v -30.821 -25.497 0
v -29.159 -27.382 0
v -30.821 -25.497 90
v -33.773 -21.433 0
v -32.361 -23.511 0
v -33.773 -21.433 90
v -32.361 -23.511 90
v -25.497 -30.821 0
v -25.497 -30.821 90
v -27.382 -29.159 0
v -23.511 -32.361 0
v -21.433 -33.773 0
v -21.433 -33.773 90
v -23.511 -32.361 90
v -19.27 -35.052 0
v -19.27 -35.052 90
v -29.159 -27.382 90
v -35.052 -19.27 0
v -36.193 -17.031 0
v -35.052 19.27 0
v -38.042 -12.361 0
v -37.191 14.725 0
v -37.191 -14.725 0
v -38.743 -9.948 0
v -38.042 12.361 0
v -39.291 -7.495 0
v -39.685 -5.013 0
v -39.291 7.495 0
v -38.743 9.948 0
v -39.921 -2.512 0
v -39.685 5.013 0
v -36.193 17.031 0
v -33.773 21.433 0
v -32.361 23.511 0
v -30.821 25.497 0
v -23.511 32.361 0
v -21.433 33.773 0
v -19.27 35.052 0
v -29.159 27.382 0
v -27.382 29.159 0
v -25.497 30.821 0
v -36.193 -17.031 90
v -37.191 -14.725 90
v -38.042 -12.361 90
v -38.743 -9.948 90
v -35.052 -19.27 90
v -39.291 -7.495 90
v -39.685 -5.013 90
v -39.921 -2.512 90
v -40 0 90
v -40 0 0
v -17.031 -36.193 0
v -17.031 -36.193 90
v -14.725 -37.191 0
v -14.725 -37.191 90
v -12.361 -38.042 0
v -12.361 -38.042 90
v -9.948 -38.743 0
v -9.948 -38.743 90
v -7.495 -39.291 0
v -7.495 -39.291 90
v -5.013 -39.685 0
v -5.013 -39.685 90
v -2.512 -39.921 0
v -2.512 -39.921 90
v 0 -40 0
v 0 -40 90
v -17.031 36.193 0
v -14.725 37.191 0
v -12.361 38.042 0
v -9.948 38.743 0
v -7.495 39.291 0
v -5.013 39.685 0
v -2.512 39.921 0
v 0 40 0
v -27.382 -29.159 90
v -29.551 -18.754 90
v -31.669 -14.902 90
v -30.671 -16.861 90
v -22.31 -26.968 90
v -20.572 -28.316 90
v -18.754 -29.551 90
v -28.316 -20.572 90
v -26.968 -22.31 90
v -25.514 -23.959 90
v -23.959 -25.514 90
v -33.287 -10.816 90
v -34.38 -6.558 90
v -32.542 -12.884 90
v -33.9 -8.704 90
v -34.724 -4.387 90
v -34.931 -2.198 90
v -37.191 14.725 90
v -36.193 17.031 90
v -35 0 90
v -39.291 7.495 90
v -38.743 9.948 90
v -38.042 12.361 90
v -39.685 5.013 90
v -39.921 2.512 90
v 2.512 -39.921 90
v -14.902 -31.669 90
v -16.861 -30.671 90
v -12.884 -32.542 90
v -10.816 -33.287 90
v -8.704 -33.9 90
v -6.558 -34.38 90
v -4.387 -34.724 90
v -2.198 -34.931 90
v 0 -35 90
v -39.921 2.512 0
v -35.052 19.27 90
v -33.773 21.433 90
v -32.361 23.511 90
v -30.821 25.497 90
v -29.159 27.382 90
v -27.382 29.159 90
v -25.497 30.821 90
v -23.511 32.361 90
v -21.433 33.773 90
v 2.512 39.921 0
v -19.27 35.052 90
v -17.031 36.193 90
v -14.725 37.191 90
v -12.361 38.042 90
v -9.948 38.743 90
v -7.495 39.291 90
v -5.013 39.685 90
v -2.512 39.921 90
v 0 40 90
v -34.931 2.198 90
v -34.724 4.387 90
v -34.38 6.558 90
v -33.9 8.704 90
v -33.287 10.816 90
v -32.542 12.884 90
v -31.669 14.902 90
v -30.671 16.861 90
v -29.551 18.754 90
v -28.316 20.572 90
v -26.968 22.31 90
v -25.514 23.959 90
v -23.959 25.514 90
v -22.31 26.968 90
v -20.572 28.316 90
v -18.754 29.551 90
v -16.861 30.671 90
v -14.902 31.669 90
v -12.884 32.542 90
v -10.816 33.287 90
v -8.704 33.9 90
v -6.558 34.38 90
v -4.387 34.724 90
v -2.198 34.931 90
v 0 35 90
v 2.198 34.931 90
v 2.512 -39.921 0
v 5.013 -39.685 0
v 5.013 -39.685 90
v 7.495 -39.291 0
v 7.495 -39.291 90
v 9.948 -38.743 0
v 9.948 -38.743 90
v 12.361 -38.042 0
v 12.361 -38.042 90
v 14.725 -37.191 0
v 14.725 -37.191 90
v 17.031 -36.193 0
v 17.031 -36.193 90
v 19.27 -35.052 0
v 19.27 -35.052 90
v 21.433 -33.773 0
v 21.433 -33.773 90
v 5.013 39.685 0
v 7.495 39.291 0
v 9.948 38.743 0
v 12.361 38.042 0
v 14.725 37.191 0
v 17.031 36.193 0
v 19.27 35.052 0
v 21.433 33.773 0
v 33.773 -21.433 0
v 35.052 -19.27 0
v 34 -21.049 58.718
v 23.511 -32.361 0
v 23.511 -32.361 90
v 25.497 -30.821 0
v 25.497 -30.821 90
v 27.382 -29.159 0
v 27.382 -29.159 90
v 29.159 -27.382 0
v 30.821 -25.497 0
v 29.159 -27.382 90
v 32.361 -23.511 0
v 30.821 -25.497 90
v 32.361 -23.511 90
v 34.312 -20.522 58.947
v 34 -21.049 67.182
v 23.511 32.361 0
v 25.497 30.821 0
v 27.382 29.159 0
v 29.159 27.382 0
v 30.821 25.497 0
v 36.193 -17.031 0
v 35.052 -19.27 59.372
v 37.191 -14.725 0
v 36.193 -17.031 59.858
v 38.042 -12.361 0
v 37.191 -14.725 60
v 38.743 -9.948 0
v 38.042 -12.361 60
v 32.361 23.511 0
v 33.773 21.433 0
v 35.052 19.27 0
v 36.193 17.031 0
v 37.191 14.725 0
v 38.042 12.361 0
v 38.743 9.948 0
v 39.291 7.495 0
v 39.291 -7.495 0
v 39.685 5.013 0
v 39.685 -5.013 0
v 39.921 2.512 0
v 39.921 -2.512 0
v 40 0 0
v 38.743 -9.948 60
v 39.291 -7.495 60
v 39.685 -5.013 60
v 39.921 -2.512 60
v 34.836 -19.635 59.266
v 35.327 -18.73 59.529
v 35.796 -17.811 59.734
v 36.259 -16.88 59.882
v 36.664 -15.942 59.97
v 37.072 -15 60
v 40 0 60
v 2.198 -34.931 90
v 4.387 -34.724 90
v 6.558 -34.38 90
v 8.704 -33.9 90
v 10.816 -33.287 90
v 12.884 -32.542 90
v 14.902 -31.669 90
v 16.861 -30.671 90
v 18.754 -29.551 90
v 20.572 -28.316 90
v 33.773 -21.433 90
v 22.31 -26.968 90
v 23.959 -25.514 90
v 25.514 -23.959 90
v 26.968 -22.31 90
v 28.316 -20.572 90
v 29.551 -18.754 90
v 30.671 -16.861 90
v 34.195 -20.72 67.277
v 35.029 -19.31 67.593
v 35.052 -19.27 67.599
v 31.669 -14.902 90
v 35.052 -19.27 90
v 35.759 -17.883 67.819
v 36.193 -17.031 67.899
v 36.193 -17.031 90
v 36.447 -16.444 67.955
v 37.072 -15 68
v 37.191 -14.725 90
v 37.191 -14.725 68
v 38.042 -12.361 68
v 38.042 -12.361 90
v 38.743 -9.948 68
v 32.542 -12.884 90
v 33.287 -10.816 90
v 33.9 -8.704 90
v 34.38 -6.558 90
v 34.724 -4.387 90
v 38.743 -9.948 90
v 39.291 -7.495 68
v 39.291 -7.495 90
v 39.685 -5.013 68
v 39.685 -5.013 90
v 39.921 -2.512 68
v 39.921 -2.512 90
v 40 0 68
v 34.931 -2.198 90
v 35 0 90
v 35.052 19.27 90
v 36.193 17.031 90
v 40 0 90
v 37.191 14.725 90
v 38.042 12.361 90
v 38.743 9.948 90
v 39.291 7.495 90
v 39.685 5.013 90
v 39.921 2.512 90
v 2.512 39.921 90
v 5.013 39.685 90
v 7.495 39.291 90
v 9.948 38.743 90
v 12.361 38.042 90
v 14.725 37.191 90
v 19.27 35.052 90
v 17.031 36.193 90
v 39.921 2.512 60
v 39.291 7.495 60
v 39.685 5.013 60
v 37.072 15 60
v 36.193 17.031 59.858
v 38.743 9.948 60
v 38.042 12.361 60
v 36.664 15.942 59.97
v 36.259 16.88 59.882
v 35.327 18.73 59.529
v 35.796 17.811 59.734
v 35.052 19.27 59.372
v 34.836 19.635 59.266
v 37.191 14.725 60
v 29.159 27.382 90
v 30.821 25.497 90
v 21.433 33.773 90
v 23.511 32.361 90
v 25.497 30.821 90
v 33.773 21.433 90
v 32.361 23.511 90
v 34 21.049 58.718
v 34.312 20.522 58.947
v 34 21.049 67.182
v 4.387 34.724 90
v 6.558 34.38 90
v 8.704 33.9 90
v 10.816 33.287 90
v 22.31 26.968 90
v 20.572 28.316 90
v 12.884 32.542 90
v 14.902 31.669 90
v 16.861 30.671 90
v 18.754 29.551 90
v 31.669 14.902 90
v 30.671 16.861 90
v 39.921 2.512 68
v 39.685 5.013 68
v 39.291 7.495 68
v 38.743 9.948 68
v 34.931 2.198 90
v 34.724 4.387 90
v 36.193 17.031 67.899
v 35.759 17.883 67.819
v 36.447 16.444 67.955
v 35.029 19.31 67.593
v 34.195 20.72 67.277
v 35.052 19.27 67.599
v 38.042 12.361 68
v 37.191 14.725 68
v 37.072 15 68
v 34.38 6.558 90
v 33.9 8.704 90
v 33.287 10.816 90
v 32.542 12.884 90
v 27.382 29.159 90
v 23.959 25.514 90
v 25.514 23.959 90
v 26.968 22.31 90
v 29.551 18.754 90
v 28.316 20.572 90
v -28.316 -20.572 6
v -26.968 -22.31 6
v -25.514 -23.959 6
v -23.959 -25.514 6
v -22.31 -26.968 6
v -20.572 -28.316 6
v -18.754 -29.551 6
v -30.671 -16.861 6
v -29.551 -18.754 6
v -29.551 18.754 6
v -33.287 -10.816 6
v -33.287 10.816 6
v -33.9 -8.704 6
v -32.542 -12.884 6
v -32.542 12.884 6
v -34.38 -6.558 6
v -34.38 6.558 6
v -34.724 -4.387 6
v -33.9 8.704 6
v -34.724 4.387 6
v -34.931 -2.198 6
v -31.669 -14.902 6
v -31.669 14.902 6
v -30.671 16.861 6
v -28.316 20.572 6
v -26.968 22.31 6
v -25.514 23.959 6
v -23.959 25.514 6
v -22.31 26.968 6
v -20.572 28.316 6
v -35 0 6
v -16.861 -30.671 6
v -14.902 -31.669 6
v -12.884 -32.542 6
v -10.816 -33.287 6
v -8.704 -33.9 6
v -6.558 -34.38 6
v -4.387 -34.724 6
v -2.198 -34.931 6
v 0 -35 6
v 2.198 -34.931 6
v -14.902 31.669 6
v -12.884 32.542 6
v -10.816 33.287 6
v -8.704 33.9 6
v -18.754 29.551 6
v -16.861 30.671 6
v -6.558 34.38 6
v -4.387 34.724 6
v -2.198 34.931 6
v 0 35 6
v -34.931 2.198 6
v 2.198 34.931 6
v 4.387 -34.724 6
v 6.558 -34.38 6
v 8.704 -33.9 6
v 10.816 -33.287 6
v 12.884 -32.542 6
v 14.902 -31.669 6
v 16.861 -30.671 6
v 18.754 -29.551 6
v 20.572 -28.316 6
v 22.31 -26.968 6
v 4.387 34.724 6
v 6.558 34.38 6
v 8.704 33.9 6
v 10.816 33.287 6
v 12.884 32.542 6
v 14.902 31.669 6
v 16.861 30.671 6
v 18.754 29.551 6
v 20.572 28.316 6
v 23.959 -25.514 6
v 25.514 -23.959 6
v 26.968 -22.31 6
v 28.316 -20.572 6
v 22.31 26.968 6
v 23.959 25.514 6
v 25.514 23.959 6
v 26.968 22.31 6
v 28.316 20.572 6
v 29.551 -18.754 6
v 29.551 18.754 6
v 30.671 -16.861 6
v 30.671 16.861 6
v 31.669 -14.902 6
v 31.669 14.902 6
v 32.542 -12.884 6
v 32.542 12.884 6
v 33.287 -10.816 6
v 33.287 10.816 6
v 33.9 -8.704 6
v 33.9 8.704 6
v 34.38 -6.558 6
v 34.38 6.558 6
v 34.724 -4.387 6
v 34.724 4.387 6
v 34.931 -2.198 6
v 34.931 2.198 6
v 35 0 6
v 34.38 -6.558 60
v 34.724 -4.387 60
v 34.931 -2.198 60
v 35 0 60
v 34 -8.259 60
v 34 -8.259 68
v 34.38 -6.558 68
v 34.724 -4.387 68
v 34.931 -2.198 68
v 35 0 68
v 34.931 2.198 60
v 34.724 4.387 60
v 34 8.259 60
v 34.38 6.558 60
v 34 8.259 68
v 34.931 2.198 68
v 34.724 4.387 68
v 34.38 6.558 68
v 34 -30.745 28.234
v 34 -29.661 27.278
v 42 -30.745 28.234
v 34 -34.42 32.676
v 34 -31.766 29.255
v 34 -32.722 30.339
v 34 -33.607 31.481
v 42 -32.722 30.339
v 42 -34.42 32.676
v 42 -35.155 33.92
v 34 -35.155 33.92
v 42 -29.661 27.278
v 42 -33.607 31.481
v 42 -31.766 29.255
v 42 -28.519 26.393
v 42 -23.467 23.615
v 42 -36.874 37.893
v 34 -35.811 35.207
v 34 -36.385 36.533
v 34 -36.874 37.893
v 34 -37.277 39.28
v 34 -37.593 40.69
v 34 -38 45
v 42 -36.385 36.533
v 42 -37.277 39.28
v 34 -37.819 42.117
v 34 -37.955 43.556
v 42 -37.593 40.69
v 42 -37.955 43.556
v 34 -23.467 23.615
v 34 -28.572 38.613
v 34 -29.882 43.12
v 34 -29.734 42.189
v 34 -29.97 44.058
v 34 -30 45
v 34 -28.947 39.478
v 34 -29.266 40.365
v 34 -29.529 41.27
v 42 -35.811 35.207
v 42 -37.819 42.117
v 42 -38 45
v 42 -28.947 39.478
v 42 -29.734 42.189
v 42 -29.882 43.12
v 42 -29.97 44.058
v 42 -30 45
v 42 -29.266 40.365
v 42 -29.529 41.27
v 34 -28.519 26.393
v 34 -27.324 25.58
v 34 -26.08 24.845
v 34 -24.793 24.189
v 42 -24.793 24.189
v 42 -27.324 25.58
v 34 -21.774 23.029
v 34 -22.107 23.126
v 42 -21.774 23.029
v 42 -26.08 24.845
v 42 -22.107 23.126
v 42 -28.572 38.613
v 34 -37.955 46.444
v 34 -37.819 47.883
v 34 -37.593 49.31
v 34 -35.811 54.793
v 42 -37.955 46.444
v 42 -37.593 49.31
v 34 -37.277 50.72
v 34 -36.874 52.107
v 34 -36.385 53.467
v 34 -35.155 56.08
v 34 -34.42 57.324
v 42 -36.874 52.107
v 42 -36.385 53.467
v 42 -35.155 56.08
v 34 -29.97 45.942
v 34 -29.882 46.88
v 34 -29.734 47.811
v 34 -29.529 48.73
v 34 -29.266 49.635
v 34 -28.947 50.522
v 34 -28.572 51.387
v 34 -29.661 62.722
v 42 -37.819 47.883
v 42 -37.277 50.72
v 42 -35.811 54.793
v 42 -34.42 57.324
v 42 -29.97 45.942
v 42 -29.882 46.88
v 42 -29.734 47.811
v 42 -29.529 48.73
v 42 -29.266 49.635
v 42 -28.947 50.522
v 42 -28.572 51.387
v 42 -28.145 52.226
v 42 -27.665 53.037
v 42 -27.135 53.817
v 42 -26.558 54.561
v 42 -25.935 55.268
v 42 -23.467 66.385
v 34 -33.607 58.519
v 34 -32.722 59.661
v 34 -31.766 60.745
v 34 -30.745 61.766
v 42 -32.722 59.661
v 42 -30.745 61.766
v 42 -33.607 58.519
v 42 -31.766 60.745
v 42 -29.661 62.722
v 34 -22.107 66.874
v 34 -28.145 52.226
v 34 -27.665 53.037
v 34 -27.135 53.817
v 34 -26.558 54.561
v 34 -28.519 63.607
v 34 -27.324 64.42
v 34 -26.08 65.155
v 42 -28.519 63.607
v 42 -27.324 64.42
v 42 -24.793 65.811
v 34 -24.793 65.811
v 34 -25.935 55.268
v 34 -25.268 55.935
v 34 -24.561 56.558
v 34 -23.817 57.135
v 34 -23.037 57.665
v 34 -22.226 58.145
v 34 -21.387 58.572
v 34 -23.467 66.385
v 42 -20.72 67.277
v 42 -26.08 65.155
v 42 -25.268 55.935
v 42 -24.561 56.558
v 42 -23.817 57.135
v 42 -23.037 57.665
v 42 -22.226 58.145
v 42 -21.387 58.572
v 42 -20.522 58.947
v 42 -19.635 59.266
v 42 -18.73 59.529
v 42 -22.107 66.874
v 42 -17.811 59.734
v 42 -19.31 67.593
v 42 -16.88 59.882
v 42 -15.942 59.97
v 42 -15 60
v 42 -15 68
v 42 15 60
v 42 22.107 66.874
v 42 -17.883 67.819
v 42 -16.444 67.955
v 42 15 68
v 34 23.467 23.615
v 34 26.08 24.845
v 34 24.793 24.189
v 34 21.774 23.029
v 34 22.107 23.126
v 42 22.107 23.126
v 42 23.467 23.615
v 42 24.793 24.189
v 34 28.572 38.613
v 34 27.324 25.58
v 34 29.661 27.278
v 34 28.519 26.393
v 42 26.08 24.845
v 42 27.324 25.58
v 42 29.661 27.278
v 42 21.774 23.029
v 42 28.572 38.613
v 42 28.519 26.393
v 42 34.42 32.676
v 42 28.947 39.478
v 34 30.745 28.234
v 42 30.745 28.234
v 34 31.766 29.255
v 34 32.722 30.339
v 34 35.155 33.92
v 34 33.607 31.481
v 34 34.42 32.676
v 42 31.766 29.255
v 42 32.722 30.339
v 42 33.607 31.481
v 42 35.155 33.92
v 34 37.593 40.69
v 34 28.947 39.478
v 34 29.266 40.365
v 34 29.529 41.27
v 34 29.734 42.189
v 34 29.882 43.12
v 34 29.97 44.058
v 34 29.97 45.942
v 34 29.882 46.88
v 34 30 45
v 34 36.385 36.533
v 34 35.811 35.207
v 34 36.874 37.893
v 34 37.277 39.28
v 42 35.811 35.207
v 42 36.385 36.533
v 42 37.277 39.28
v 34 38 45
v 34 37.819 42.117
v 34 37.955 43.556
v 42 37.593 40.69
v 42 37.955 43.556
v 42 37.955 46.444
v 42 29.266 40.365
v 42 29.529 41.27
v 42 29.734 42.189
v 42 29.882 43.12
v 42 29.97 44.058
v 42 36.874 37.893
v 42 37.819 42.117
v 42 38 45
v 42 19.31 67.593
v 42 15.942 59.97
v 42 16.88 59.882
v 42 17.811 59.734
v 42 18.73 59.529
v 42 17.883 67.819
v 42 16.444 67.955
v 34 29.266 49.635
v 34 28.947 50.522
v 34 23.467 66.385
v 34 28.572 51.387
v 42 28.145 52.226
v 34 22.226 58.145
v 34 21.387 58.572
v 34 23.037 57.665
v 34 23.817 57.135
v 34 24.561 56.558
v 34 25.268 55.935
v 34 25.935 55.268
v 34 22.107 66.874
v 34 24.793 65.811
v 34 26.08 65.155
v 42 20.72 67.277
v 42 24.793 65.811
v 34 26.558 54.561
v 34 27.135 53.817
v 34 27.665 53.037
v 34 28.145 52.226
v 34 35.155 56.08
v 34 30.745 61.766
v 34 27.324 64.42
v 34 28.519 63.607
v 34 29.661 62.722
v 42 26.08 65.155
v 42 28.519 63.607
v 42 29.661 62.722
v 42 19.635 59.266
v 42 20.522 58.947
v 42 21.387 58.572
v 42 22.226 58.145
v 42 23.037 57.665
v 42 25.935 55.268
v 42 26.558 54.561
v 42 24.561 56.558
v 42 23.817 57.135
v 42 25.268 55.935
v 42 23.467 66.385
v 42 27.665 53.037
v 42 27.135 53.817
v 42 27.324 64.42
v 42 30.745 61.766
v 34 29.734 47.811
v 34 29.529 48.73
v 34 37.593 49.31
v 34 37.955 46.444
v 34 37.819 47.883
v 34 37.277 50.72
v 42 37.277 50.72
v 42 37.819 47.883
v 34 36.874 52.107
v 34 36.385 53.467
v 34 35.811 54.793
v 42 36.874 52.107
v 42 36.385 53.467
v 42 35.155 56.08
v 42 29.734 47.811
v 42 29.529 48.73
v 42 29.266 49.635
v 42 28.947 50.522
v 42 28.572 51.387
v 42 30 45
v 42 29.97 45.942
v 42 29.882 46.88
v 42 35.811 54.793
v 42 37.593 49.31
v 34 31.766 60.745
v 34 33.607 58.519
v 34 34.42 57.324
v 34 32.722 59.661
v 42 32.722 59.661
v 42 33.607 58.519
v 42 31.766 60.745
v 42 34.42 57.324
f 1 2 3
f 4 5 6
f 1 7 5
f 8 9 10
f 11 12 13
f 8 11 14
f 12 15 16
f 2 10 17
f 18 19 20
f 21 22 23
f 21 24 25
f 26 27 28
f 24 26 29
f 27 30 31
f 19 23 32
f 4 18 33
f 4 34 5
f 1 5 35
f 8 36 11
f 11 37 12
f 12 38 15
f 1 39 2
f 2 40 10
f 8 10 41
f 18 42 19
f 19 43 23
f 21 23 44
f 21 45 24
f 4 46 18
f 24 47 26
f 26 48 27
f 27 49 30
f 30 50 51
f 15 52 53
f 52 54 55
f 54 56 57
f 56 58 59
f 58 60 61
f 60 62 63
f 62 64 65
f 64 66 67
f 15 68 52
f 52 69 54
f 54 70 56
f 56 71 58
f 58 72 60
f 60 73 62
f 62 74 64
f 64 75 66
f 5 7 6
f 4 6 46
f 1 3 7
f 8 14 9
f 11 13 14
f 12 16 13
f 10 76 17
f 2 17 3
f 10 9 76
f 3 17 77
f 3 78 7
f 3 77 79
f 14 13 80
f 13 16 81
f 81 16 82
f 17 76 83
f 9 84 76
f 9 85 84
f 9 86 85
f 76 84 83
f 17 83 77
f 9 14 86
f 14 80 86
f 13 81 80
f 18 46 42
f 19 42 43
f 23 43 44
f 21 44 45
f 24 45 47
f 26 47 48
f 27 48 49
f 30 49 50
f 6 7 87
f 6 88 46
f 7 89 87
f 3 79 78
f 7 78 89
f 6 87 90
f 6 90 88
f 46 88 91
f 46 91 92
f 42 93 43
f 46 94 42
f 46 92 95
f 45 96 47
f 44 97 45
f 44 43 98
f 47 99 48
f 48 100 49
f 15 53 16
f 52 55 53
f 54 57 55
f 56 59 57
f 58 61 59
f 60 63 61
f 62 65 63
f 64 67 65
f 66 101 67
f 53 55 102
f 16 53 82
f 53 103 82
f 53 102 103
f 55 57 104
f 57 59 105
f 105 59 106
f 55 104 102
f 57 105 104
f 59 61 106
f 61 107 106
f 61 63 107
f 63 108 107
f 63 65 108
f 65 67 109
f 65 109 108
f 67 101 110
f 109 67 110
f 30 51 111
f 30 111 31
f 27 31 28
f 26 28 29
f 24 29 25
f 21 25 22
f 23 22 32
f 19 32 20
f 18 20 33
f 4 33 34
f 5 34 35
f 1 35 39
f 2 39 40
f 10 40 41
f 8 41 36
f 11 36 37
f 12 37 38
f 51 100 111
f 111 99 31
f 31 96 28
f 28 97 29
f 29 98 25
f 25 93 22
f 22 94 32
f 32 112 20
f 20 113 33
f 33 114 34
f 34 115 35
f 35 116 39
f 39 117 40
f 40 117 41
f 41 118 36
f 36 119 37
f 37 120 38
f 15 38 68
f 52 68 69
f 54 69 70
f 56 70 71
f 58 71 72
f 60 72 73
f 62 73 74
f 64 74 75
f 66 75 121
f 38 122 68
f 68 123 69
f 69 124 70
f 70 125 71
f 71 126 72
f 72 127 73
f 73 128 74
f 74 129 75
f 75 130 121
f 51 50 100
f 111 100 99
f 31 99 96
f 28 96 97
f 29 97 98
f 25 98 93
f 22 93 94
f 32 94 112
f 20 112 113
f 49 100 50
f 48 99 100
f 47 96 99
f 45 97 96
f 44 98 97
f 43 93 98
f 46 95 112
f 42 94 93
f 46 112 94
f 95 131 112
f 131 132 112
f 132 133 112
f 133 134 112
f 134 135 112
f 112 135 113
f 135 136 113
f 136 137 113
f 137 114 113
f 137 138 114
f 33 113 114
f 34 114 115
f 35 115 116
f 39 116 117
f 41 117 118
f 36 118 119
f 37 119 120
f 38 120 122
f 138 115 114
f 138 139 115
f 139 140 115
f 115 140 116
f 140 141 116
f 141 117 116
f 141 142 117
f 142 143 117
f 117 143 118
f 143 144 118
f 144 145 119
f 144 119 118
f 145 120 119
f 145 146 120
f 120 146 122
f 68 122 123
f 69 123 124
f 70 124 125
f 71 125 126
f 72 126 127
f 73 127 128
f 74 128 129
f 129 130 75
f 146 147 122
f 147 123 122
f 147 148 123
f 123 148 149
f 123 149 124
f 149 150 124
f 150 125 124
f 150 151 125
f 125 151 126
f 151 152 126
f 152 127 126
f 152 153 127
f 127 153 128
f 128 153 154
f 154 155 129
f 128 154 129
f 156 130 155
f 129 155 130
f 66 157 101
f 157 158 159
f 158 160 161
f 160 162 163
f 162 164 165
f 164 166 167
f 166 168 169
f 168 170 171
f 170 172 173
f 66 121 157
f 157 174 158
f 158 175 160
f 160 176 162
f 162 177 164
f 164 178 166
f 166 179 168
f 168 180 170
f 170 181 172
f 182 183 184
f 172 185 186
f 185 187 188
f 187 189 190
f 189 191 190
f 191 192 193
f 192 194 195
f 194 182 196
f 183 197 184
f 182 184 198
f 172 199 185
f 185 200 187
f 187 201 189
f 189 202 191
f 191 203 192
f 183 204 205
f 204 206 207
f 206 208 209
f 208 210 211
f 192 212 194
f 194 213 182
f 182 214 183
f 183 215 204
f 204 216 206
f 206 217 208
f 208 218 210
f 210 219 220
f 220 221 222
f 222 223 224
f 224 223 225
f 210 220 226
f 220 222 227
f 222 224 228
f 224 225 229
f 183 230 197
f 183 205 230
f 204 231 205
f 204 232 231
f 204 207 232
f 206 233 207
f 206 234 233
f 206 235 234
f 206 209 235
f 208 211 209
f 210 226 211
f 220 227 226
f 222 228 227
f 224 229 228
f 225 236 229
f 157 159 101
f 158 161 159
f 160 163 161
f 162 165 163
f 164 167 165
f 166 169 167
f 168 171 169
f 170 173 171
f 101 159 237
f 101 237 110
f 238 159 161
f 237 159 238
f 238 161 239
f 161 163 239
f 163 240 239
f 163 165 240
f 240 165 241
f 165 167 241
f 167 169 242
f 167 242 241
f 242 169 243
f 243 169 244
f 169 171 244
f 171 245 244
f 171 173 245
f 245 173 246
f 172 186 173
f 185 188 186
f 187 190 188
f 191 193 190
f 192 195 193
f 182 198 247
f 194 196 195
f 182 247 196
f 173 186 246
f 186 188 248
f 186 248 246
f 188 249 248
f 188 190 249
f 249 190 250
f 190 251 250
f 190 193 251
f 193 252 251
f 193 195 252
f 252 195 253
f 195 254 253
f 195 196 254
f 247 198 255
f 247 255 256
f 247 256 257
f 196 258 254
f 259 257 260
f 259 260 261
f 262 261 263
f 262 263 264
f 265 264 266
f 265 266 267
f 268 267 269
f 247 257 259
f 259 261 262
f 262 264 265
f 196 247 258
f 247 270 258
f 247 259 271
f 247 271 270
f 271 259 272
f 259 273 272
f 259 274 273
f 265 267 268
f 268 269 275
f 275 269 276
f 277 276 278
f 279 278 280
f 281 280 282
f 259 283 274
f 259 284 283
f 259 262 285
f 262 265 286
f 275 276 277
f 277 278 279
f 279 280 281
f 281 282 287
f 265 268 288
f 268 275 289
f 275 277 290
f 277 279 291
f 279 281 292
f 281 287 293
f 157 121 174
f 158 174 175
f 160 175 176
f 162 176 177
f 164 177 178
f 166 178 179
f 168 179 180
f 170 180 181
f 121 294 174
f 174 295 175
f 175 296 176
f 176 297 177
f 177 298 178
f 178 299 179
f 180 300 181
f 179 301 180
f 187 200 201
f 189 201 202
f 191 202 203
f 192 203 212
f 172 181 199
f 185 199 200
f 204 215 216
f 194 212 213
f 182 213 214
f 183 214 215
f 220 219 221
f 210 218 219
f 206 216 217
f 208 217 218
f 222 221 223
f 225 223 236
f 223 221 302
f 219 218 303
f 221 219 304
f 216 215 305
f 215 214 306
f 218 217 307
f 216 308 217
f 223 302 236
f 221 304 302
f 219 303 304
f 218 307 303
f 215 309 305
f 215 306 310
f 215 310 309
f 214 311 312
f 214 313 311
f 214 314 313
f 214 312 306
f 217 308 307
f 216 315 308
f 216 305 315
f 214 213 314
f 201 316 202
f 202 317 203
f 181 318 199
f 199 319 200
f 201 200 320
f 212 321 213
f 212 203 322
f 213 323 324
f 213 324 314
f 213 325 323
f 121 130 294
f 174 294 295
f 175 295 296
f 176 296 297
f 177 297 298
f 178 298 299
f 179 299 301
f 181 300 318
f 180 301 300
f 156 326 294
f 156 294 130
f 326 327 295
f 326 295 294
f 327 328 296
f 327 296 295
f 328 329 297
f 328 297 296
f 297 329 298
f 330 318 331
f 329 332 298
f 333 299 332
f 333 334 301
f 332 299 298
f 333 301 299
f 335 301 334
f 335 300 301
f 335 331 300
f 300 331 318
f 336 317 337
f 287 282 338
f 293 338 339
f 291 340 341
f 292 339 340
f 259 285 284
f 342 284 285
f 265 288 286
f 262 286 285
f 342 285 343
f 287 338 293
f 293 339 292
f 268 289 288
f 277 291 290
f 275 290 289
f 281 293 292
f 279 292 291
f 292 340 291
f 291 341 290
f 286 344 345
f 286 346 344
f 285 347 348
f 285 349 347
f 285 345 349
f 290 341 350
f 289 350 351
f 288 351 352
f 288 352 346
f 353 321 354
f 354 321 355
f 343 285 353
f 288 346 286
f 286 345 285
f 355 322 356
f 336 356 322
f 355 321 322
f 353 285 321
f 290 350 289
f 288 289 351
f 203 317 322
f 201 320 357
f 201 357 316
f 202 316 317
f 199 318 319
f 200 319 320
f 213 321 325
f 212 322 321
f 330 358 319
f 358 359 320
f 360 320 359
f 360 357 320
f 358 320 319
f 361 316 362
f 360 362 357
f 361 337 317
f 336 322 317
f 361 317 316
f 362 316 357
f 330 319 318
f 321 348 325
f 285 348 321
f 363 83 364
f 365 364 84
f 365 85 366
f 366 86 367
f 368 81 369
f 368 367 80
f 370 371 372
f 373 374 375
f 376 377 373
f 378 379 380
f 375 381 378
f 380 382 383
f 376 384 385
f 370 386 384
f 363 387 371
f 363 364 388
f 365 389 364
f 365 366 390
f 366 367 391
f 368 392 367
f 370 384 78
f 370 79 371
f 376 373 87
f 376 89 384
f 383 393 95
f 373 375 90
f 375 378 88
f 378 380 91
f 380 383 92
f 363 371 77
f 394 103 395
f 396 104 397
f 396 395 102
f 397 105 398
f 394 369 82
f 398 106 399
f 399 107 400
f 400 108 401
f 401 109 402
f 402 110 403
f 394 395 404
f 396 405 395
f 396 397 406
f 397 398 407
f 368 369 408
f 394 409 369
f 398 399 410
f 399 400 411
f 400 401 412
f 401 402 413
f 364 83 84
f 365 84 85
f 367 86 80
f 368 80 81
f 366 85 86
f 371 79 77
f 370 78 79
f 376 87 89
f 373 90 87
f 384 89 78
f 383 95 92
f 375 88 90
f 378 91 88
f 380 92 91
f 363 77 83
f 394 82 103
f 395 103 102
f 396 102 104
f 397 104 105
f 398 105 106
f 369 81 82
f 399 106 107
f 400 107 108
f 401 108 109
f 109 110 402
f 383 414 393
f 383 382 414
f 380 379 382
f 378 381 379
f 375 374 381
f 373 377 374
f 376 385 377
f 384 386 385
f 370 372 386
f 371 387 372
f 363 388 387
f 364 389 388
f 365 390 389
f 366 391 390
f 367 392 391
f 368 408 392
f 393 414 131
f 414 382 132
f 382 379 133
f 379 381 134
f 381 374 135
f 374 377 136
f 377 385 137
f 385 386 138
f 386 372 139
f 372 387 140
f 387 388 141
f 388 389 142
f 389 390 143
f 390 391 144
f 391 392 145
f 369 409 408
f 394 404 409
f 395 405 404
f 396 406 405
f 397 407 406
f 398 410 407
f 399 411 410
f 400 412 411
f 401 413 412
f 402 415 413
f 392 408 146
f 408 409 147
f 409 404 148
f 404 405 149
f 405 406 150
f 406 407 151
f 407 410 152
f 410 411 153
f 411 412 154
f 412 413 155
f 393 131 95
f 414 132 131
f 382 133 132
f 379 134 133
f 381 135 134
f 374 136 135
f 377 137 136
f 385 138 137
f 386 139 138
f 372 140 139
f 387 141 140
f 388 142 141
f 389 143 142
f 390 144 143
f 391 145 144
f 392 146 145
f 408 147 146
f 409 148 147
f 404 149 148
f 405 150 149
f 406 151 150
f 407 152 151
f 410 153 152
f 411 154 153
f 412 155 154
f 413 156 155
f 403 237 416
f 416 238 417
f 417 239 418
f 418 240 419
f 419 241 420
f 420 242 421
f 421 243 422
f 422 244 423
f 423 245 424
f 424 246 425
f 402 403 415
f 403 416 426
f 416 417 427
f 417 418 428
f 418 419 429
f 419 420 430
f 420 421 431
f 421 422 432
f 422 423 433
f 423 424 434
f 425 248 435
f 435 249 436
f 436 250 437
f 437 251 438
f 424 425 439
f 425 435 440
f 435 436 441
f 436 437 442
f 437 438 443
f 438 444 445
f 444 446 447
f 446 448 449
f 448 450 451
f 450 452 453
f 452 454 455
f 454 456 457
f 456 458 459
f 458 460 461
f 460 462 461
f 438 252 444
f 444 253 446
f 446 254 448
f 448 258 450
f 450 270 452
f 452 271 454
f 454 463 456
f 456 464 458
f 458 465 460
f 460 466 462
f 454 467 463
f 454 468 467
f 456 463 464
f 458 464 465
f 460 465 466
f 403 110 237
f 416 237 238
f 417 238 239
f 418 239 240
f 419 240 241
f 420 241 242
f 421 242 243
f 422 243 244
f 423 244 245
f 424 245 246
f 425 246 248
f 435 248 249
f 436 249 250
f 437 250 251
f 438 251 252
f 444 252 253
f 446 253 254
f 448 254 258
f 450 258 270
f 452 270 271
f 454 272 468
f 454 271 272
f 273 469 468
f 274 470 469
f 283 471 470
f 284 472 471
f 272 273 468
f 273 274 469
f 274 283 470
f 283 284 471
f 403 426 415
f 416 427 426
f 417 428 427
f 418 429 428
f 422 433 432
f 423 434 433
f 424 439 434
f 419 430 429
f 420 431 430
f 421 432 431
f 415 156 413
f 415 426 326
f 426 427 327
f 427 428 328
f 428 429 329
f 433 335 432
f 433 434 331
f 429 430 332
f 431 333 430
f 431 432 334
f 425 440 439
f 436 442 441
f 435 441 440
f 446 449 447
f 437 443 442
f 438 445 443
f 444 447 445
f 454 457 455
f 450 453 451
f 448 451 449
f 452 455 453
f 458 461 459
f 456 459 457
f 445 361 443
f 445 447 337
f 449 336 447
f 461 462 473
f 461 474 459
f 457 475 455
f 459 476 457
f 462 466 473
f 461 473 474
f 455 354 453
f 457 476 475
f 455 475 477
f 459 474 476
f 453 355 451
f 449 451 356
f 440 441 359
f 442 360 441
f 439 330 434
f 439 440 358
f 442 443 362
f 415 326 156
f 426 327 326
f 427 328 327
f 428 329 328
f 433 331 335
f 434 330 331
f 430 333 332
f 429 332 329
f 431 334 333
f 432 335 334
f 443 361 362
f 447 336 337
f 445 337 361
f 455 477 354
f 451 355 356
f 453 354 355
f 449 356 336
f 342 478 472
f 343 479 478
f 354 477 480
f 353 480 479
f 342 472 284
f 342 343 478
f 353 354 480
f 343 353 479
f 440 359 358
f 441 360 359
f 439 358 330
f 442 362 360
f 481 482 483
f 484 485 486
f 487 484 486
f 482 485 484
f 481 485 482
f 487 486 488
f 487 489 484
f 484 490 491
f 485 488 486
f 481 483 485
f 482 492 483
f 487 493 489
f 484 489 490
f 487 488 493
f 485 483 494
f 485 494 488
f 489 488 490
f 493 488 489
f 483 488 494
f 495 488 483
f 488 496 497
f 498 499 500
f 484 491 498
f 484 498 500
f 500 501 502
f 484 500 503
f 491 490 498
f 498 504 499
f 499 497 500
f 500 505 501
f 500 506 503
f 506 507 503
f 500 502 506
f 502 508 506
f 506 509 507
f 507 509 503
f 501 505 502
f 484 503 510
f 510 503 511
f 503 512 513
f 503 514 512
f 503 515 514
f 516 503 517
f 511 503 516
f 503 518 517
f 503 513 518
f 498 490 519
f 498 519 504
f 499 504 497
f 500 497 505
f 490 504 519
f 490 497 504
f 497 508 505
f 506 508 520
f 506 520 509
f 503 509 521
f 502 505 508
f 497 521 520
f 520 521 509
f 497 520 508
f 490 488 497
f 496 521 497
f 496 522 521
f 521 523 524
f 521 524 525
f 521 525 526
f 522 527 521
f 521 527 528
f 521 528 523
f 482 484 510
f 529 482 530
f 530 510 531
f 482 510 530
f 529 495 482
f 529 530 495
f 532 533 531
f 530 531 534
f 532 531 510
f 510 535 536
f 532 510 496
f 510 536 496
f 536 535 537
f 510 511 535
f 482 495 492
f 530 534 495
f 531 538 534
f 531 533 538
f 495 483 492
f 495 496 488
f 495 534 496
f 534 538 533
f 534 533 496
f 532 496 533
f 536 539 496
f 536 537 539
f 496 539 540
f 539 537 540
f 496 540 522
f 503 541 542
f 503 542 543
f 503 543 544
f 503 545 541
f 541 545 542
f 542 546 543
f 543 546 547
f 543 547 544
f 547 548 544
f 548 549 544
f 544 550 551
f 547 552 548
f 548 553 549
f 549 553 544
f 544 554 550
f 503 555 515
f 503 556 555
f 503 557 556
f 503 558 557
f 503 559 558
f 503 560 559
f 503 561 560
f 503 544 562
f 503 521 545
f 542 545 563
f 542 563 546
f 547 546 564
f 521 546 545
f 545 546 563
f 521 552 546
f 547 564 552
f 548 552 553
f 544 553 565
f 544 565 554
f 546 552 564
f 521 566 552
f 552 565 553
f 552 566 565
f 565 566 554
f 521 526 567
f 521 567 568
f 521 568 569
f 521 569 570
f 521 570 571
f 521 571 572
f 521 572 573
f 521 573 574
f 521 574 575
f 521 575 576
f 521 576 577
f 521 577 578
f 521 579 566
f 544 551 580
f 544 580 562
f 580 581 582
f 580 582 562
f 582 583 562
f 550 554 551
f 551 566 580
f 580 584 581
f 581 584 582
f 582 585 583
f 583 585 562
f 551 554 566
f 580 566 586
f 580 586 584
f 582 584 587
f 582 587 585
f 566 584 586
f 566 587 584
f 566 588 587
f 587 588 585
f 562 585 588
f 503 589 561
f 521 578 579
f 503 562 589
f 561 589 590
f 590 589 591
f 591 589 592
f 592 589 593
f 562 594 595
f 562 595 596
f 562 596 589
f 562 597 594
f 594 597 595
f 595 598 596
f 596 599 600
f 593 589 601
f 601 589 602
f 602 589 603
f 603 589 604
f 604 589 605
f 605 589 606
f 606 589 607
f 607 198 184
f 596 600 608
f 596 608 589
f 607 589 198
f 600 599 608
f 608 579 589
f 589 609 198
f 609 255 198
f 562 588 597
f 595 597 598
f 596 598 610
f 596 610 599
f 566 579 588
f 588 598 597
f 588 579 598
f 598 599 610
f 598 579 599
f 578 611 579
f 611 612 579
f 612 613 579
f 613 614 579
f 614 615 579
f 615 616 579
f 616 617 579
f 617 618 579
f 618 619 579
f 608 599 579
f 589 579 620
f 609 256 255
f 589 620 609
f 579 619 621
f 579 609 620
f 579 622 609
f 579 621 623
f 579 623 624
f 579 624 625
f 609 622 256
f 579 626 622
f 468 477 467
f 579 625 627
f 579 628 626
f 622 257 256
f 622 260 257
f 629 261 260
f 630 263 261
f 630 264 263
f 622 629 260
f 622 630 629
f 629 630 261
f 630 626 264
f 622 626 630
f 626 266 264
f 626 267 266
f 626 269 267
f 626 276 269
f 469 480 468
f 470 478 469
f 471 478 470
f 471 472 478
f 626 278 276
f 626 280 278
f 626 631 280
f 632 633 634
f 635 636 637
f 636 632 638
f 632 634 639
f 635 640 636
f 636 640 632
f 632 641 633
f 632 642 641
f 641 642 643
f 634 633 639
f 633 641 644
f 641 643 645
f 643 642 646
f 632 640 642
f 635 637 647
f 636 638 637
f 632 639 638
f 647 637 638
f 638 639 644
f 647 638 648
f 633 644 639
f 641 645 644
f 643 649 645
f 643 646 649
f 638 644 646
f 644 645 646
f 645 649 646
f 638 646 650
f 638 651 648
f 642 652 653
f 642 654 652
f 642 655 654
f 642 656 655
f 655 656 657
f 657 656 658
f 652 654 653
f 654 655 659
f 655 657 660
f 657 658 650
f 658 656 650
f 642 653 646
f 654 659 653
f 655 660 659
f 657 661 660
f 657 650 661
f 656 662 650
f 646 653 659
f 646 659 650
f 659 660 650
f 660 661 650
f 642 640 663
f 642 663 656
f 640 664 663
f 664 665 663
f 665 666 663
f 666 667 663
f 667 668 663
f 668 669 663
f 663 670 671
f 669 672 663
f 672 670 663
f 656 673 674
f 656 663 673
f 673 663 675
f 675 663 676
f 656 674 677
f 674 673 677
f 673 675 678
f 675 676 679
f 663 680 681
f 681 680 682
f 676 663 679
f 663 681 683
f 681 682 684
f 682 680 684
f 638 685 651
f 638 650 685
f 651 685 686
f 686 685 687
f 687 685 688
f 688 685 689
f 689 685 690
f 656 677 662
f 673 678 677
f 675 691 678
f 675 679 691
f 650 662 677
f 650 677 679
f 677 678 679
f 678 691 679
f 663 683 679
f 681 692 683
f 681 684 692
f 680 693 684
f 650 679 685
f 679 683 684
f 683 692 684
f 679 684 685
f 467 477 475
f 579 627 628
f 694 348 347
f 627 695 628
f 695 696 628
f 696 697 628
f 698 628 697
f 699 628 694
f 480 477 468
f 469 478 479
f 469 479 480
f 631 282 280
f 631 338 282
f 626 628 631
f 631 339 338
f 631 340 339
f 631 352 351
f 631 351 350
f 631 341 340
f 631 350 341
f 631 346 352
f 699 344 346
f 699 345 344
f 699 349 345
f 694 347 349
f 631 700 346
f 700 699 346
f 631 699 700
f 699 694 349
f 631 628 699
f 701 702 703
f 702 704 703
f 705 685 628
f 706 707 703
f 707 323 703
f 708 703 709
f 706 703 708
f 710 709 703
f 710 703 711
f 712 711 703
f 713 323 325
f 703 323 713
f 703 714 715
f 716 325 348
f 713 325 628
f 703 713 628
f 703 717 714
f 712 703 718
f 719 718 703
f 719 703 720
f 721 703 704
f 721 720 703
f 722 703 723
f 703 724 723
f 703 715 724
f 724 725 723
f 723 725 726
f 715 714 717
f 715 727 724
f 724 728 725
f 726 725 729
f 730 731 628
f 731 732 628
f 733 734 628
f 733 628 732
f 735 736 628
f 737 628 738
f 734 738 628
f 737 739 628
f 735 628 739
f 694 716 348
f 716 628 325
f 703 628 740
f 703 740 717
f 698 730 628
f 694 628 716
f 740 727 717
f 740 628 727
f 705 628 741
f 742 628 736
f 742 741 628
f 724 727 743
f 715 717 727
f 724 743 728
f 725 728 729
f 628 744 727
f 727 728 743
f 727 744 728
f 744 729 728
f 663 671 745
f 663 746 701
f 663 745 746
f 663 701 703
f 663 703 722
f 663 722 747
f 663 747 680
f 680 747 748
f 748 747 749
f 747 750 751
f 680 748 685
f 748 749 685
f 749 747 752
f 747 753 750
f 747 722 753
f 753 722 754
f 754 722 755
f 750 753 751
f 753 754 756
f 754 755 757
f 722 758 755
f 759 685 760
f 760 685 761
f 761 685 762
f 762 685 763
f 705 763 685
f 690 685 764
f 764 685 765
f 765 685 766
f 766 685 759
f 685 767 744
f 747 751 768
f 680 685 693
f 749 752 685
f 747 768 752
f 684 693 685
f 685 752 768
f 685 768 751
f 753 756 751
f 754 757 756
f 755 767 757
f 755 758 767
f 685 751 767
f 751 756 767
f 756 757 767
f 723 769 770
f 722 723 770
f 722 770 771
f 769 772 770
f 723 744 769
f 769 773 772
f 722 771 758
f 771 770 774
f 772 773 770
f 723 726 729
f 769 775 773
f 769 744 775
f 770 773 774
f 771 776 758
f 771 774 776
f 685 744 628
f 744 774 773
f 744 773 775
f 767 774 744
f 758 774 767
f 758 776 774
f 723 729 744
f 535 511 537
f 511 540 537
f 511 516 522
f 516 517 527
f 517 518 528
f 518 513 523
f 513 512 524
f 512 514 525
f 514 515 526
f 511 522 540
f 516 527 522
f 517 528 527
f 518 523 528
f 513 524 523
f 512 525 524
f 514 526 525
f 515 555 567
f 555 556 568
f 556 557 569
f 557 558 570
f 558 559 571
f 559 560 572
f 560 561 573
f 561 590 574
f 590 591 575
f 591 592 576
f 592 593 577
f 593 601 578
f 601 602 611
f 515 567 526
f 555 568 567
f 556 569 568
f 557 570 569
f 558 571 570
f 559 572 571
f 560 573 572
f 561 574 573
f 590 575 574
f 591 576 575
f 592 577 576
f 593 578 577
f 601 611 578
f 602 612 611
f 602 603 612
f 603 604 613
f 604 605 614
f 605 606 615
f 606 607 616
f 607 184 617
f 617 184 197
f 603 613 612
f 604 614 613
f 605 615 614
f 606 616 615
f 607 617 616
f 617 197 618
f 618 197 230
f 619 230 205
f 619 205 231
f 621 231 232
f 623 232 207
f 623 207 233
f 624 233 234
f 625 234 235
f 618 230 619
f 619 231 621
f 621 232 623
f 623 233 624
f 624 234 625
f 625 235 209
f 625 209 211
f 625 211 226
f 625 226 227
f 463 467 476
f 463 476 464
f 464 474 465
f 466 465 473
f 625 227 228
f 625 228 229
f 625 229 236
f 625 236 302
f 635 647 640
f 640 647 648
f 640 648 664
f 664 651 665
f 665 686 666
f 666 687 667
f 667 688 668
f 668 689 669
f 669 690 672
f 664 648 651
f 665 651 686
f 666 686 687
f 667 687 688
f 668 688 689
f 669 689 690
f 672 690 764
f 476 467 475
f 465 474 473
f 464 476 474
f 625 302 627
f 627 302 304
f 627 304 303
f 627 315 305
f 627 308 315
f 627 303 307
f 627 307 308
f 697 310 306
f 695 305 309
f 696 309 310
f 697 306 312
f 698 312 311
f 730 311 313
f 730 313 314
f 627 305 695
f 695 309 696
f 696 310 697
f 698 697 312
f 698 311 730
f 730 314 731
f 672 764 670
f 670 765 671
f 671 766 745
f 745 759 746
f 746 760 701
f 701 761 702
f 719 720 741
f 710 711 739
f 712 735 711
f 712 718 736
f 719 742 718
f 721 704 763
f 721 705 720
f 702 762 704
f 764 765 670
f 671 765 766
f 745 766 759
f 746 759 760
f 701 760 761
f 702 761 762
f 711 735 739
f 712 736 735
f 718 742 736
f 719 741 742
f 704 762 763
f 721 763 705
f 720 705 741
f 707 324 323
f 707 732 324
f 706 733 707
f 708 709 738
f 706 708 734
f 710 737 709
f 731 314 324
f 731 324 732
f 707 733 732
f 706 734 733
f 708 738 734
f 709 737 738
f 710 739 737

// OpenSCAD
// Mug Parameters
outer_diameter = 80;
inner_diameter = 70;
mug_height = 90;
bottom_thickness = 6;

// Handle Parameters
handle_inner_h = 30; // Height of the opening
handle_inner_w = 25; // Width of the opening
handle_thickness = 8; // Thickness of the handle material

$fn = 100;

union() {
    // Mug Body
    difference() {
        // Outer Cylinder
        cylinder(h = mug_height, d = outer_diameter);
        
        // Inner Hollow
        translate([0, 0, bottom_thickness])
            cylinder(h = mug_height, d = inner_diameter);
    }

    // Handle (Positioned in +X direction)
    translate([outer_diameter / 2 - 2, 0, mug_height / 2]) { // -2 for slight overlap to ensure union
        rotate([90, 0, 90]) {
            difference() {
                // Outer D-shape (Approximated by rounded rectangle)
                hull() {
                    translate([handle_inner_h / 2, 0, 0])
                        cylinder(h = handle_thickness, d = handle_inner_h + (handle_thickness * 2), center = true);
                    translate([-handle_inner_h / 2, 0, 0])
                        cylinder(h = handle_thickness, d = handle_inner_h + (handle_thickness * 2), center = true);
                    // Square part connecting to the body
                    translate([0, -(handle_inner_w + handle_thickness) / 2, 0])
                        cube([handle_inner_h + handle_thickness * 2, 1, handle_thickness], center = true);
                }
                
                // Inner Hollow of D-shape
                hull() {
                    translate([handle_inner_h / 2, 0, 0])
                        cylinder(h = handle_thickness + 2, d = handle_inner_h, center = true);
                    translate([-handle_inner_h / 2, 0, 0])
                        cylinder(h = handle_thickness + 2, d = handle_inner_h, center = true);
                    // Cutout towards the mug wall
                    translate([0, -handle_inner_w, 0])
                        cube([handle_inner_h, handle_inner_w, handle_thickness + 2], center = true);
                }
            }
        }
    }
}
